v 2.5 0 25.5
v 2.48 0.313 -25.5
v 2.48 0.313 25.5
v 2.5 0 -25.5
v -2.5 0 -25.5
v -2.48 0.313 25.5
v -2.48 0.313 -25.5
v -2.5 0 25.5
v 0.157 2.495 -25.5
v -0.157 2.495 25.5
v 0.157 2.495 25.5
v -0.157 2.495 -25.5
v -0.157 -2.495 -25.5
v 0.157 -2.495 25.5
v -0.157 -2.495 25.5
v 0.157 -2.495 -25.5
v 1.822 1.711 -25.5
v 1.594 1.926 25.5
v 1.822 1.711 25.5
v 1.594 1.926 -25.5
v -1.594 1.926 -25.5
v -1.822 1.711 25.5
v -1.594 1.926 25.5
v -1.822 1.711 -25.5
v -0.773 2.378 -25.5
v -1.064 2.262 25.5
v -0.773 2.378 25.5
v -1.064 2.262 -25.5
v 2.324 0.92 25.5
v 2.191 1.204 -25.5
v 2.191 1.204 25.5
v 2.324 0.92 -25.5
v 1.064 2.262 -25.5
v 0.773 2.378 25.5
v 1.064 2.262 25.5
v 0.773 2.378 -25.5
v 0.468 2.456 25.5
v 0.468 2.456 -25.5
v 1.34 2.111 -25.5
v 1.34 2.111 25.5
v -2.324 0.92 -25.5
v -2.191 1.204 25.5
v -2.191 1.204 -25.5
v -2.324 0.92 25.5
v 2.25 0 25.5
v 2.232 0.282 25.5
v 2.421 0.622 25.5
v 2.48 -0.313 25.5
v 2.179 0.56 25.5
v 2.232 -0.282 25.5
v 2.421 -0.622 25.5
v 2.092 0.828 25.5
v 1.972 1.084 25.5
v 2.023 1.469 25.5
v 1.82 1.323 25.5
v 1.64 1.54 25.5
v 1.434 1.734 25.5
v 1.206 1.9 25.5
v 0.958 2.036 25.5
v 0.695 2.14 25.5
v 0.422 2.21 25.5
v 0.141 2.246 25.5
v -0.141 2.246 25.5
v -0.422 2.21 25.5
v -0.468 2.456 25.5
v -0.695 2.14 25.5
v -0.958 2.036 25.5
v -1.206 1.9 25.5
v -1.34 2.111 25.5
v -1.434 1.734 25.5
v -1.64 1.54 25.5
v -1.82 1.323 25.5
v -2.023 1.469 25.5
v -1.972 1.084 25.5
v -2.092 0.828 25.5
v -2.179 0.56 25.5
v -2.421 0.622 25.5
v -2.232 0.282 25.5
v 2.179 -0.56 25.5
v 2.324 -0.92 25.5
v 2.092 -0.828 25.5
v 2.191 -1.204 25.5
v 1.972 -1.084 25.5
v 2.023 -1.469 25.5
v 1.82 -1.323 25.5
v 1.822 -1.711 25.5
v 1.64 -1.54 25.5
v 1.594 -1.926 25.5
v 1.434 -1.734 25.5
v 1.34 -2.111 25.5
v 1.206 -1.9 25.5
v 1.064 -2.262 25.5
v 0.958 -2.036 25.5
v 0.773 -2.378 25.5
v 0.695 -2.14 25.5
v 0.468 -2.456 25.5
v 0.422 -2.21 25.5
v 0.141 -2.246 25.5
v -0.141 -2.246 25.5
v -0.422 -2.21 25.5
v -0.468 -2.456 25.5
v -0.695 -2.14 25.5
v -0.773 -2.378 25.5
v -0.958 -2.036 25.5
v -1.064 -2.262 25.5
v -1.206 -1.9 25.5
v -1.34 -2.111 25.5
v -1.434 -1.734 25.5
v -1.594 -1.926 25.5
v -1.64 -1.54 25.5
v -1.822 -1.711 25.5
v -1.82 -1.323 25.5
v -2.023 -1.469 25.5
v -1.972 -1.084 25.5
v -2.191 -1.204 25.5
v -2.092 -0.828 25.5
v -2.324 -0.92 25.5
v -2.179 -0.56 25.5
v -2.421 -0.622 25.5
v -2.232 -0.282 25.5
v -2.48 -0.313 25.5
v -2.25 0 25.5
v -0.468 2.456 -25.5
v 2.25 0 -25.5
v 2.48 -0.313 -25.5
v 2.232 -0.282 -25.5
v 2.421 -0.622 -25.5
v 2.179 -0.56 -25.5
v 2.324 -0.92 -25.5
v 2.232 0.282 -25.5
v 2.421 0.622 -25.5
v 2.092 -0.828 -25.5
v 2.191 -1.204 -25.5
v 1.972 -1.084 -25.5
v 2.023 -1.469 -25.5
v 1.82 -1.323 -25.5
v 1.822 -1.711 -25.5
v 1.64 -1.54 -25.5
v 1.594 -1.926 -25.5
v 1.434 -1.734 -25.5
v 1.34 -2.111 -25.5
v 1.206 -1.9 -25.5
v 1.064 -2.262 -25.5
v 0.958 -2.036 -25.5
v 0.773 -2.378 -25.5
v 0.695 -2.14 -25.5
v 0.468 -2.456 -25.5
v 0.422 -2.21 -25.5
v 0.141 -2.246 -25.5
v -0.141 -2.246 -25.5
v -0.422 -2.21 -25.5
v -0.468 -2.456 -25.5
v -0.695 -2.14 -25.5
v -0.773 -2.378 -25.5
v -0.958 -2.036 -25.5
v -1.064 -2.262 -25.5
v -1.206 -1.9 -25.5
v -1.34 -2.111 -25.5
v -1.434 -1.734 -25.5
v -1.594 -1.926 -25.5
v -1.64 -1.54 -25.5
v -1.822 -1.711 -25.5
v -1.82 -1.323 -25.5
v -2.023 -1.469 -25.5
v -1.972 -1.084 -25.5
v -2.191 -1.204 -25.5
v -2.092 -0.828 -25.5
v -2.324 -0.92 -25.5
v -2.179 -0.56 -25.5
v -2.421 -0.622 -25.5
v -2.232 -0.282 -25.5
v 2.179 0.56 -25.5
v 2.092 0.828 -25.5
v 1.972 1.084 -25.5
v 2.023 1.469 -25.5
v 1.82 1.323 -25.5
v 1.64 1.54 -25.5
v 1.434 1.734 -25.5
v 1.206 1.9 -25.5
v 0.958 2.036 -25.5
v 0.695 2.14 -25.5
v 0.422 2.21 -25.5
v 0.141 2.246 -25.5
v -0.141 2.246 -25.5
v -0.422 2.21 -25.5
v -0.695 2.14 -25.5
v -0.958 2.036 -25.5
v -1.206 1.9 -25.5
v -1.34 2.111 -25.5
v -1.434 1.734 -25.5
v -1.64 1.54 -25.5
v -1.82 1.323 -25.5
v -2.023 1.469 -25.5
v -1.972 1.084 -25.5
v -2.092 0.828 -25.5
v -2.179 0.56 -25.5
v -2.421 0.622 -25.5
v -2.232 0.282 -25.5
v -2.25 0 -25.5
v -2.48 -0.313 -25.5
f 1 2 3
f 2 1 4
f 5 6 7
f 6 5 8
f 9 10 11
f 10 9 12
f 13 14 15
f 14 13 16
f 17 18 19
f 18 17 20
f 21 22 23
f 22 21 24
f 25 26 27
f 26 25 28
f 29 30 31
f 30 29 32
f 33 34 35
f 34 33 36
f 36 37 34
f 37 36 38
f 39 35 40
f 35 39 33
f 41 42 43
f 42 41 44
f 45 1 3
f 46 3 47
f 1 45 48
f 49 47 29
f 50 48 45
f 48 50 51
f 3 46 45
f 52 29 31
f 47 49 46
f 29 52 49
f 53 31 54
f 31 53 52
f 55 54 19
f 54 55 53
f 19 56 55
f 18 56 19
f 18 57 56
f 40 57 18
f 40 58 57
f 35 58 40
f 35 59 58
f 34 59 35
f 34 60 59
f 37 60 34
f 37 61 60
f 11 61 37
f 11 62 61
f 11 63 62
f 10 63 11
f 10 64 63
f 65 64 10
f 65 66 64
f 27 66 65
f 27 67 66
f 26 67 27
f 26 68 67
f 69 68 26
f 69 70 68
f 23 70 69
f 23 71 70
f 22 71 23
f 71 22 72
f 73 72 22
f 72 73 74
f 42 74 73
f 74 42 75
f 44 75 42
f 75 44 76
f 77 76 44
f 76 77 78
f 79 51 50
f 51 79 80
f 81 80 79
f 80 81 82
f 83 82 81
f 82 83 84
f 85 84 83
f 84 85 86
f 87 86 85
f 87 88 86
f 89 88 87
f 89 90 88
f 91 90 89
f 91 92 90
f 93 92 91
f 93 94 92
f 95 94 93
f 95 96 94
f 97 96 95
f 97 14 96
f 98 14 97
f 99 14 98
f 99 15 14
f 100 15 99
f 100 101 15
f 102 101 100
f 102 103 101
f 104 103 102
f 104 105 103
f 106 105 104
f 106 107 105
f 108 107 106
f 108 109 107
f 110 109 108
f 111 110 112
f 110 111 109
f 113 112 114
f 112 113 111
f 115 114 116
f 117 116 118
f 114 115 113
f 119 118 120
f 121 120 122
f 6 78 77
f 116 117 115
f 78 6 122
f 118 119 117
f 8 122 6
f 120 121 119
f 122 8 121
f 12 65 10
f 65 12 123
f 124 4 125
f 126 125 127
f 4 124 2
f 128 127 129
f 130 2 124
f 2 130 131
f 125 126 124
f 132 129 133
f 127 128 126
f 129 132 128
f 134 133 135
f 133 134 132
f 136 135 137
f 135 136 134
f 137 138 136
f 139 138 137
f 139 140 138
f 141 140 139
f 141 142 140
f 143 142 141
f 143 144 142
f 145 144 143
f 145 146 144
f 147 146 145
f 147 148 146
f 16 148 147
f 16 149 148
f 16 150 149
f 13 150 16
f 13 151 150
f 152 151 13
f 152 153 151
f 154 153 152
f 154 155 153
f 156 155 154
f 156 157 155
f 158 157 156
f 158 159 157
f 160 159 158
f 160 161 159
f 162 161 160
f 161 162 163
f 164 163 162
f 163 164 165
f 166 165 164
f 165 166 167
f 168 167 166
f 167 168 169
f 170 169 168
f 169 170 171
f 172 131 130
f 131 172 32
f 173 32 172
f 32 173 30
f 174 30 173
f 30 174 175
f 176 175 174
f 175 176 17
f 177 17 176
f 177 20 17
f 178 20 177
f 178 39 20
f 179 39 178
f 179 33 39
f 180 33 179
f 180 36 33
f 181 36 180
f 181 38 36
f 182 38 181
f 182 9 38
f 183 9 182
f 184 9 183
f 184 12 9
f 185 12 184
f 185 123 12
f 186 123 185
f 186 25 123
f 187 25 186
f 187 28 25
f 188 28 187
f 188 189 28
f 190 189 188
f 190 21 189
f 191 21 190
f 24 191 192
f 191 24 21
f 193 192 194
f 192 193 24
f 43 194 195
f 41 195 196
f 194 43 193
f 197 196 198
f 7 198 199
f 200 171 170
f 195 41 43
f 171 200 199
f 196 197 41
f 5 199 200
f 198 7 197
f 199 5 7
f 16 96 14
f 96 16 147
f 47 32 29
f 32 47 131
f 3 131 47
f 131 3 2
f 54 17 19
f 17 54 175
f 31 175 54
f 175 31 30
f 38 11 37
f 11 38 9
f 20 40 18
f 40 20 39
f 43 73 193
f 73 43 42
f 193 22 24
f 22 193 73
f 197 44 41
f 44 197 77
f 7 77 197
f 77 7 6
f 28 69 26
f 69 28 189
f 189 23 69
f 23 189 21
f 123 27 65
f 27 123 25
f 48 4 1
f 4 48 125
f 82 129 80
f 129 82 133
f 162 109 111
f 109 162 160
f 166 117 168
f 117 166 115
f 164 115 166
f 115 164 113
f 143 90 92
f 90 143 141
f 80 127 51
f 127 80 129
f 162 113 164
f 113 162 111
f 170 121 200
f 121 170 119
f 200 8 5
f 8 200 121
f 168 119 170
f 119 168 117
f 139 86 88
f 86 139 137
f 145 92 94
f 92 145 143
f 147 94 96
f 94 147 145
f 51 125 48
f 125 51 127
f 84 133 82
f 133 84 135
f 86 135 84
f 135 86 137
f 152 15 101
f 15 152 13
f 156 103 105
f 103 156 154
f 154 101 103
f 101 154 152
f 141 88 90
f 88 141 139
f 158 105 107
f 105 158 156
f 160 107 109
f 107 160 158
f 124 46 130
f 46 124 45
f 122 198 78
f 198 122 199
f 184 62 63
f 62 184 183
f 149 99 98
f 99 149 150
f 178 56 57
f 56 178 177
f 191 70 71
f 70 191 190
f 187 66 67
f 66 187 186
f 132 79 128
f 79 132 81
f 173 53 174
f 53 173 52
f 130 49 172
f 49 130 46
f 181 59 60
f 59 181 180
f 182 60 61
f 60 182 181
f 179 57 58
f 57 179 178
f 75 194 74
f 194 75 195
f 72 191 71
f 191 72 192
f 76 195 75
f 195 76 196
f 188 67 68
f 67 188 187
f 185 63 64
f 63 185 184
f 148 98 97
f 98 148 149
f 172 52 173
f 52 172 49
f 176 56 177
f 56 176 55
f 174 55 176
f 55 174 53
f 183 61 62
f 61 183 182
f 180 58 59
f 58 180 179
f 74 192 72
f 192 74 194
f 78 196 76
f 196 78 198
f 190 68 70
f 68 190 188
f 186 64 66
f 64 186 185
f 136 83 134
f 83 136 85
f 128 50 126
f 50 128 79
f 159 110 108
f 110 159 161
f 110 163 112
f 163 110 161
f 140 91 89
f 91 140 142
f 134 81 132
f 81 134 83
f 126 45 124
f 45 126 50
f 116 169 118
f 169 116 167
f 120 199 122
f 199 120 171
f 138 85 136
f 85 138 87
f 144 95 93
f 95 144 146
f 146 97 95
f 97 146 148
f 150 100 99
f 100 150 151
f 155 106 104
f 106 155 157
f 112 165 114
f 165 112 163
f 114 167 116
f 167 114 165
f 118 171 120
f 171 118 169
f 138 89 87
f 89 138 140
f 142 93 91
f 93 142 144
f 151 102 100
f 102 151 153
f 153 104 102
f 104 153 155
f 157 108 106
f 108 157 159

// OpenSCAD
$fn = 50;


difference() {
	union() {
		translate(v = [0, 0, -25.5000000000]) {
			cylinder(h = 51, r = 2.5000000000);
		}
	}
	union() {
		translate(v = [0, 0, -100.0000000000]) {
			cylinder(h = 200, r = 2.2500000000);
		}
	}
}
